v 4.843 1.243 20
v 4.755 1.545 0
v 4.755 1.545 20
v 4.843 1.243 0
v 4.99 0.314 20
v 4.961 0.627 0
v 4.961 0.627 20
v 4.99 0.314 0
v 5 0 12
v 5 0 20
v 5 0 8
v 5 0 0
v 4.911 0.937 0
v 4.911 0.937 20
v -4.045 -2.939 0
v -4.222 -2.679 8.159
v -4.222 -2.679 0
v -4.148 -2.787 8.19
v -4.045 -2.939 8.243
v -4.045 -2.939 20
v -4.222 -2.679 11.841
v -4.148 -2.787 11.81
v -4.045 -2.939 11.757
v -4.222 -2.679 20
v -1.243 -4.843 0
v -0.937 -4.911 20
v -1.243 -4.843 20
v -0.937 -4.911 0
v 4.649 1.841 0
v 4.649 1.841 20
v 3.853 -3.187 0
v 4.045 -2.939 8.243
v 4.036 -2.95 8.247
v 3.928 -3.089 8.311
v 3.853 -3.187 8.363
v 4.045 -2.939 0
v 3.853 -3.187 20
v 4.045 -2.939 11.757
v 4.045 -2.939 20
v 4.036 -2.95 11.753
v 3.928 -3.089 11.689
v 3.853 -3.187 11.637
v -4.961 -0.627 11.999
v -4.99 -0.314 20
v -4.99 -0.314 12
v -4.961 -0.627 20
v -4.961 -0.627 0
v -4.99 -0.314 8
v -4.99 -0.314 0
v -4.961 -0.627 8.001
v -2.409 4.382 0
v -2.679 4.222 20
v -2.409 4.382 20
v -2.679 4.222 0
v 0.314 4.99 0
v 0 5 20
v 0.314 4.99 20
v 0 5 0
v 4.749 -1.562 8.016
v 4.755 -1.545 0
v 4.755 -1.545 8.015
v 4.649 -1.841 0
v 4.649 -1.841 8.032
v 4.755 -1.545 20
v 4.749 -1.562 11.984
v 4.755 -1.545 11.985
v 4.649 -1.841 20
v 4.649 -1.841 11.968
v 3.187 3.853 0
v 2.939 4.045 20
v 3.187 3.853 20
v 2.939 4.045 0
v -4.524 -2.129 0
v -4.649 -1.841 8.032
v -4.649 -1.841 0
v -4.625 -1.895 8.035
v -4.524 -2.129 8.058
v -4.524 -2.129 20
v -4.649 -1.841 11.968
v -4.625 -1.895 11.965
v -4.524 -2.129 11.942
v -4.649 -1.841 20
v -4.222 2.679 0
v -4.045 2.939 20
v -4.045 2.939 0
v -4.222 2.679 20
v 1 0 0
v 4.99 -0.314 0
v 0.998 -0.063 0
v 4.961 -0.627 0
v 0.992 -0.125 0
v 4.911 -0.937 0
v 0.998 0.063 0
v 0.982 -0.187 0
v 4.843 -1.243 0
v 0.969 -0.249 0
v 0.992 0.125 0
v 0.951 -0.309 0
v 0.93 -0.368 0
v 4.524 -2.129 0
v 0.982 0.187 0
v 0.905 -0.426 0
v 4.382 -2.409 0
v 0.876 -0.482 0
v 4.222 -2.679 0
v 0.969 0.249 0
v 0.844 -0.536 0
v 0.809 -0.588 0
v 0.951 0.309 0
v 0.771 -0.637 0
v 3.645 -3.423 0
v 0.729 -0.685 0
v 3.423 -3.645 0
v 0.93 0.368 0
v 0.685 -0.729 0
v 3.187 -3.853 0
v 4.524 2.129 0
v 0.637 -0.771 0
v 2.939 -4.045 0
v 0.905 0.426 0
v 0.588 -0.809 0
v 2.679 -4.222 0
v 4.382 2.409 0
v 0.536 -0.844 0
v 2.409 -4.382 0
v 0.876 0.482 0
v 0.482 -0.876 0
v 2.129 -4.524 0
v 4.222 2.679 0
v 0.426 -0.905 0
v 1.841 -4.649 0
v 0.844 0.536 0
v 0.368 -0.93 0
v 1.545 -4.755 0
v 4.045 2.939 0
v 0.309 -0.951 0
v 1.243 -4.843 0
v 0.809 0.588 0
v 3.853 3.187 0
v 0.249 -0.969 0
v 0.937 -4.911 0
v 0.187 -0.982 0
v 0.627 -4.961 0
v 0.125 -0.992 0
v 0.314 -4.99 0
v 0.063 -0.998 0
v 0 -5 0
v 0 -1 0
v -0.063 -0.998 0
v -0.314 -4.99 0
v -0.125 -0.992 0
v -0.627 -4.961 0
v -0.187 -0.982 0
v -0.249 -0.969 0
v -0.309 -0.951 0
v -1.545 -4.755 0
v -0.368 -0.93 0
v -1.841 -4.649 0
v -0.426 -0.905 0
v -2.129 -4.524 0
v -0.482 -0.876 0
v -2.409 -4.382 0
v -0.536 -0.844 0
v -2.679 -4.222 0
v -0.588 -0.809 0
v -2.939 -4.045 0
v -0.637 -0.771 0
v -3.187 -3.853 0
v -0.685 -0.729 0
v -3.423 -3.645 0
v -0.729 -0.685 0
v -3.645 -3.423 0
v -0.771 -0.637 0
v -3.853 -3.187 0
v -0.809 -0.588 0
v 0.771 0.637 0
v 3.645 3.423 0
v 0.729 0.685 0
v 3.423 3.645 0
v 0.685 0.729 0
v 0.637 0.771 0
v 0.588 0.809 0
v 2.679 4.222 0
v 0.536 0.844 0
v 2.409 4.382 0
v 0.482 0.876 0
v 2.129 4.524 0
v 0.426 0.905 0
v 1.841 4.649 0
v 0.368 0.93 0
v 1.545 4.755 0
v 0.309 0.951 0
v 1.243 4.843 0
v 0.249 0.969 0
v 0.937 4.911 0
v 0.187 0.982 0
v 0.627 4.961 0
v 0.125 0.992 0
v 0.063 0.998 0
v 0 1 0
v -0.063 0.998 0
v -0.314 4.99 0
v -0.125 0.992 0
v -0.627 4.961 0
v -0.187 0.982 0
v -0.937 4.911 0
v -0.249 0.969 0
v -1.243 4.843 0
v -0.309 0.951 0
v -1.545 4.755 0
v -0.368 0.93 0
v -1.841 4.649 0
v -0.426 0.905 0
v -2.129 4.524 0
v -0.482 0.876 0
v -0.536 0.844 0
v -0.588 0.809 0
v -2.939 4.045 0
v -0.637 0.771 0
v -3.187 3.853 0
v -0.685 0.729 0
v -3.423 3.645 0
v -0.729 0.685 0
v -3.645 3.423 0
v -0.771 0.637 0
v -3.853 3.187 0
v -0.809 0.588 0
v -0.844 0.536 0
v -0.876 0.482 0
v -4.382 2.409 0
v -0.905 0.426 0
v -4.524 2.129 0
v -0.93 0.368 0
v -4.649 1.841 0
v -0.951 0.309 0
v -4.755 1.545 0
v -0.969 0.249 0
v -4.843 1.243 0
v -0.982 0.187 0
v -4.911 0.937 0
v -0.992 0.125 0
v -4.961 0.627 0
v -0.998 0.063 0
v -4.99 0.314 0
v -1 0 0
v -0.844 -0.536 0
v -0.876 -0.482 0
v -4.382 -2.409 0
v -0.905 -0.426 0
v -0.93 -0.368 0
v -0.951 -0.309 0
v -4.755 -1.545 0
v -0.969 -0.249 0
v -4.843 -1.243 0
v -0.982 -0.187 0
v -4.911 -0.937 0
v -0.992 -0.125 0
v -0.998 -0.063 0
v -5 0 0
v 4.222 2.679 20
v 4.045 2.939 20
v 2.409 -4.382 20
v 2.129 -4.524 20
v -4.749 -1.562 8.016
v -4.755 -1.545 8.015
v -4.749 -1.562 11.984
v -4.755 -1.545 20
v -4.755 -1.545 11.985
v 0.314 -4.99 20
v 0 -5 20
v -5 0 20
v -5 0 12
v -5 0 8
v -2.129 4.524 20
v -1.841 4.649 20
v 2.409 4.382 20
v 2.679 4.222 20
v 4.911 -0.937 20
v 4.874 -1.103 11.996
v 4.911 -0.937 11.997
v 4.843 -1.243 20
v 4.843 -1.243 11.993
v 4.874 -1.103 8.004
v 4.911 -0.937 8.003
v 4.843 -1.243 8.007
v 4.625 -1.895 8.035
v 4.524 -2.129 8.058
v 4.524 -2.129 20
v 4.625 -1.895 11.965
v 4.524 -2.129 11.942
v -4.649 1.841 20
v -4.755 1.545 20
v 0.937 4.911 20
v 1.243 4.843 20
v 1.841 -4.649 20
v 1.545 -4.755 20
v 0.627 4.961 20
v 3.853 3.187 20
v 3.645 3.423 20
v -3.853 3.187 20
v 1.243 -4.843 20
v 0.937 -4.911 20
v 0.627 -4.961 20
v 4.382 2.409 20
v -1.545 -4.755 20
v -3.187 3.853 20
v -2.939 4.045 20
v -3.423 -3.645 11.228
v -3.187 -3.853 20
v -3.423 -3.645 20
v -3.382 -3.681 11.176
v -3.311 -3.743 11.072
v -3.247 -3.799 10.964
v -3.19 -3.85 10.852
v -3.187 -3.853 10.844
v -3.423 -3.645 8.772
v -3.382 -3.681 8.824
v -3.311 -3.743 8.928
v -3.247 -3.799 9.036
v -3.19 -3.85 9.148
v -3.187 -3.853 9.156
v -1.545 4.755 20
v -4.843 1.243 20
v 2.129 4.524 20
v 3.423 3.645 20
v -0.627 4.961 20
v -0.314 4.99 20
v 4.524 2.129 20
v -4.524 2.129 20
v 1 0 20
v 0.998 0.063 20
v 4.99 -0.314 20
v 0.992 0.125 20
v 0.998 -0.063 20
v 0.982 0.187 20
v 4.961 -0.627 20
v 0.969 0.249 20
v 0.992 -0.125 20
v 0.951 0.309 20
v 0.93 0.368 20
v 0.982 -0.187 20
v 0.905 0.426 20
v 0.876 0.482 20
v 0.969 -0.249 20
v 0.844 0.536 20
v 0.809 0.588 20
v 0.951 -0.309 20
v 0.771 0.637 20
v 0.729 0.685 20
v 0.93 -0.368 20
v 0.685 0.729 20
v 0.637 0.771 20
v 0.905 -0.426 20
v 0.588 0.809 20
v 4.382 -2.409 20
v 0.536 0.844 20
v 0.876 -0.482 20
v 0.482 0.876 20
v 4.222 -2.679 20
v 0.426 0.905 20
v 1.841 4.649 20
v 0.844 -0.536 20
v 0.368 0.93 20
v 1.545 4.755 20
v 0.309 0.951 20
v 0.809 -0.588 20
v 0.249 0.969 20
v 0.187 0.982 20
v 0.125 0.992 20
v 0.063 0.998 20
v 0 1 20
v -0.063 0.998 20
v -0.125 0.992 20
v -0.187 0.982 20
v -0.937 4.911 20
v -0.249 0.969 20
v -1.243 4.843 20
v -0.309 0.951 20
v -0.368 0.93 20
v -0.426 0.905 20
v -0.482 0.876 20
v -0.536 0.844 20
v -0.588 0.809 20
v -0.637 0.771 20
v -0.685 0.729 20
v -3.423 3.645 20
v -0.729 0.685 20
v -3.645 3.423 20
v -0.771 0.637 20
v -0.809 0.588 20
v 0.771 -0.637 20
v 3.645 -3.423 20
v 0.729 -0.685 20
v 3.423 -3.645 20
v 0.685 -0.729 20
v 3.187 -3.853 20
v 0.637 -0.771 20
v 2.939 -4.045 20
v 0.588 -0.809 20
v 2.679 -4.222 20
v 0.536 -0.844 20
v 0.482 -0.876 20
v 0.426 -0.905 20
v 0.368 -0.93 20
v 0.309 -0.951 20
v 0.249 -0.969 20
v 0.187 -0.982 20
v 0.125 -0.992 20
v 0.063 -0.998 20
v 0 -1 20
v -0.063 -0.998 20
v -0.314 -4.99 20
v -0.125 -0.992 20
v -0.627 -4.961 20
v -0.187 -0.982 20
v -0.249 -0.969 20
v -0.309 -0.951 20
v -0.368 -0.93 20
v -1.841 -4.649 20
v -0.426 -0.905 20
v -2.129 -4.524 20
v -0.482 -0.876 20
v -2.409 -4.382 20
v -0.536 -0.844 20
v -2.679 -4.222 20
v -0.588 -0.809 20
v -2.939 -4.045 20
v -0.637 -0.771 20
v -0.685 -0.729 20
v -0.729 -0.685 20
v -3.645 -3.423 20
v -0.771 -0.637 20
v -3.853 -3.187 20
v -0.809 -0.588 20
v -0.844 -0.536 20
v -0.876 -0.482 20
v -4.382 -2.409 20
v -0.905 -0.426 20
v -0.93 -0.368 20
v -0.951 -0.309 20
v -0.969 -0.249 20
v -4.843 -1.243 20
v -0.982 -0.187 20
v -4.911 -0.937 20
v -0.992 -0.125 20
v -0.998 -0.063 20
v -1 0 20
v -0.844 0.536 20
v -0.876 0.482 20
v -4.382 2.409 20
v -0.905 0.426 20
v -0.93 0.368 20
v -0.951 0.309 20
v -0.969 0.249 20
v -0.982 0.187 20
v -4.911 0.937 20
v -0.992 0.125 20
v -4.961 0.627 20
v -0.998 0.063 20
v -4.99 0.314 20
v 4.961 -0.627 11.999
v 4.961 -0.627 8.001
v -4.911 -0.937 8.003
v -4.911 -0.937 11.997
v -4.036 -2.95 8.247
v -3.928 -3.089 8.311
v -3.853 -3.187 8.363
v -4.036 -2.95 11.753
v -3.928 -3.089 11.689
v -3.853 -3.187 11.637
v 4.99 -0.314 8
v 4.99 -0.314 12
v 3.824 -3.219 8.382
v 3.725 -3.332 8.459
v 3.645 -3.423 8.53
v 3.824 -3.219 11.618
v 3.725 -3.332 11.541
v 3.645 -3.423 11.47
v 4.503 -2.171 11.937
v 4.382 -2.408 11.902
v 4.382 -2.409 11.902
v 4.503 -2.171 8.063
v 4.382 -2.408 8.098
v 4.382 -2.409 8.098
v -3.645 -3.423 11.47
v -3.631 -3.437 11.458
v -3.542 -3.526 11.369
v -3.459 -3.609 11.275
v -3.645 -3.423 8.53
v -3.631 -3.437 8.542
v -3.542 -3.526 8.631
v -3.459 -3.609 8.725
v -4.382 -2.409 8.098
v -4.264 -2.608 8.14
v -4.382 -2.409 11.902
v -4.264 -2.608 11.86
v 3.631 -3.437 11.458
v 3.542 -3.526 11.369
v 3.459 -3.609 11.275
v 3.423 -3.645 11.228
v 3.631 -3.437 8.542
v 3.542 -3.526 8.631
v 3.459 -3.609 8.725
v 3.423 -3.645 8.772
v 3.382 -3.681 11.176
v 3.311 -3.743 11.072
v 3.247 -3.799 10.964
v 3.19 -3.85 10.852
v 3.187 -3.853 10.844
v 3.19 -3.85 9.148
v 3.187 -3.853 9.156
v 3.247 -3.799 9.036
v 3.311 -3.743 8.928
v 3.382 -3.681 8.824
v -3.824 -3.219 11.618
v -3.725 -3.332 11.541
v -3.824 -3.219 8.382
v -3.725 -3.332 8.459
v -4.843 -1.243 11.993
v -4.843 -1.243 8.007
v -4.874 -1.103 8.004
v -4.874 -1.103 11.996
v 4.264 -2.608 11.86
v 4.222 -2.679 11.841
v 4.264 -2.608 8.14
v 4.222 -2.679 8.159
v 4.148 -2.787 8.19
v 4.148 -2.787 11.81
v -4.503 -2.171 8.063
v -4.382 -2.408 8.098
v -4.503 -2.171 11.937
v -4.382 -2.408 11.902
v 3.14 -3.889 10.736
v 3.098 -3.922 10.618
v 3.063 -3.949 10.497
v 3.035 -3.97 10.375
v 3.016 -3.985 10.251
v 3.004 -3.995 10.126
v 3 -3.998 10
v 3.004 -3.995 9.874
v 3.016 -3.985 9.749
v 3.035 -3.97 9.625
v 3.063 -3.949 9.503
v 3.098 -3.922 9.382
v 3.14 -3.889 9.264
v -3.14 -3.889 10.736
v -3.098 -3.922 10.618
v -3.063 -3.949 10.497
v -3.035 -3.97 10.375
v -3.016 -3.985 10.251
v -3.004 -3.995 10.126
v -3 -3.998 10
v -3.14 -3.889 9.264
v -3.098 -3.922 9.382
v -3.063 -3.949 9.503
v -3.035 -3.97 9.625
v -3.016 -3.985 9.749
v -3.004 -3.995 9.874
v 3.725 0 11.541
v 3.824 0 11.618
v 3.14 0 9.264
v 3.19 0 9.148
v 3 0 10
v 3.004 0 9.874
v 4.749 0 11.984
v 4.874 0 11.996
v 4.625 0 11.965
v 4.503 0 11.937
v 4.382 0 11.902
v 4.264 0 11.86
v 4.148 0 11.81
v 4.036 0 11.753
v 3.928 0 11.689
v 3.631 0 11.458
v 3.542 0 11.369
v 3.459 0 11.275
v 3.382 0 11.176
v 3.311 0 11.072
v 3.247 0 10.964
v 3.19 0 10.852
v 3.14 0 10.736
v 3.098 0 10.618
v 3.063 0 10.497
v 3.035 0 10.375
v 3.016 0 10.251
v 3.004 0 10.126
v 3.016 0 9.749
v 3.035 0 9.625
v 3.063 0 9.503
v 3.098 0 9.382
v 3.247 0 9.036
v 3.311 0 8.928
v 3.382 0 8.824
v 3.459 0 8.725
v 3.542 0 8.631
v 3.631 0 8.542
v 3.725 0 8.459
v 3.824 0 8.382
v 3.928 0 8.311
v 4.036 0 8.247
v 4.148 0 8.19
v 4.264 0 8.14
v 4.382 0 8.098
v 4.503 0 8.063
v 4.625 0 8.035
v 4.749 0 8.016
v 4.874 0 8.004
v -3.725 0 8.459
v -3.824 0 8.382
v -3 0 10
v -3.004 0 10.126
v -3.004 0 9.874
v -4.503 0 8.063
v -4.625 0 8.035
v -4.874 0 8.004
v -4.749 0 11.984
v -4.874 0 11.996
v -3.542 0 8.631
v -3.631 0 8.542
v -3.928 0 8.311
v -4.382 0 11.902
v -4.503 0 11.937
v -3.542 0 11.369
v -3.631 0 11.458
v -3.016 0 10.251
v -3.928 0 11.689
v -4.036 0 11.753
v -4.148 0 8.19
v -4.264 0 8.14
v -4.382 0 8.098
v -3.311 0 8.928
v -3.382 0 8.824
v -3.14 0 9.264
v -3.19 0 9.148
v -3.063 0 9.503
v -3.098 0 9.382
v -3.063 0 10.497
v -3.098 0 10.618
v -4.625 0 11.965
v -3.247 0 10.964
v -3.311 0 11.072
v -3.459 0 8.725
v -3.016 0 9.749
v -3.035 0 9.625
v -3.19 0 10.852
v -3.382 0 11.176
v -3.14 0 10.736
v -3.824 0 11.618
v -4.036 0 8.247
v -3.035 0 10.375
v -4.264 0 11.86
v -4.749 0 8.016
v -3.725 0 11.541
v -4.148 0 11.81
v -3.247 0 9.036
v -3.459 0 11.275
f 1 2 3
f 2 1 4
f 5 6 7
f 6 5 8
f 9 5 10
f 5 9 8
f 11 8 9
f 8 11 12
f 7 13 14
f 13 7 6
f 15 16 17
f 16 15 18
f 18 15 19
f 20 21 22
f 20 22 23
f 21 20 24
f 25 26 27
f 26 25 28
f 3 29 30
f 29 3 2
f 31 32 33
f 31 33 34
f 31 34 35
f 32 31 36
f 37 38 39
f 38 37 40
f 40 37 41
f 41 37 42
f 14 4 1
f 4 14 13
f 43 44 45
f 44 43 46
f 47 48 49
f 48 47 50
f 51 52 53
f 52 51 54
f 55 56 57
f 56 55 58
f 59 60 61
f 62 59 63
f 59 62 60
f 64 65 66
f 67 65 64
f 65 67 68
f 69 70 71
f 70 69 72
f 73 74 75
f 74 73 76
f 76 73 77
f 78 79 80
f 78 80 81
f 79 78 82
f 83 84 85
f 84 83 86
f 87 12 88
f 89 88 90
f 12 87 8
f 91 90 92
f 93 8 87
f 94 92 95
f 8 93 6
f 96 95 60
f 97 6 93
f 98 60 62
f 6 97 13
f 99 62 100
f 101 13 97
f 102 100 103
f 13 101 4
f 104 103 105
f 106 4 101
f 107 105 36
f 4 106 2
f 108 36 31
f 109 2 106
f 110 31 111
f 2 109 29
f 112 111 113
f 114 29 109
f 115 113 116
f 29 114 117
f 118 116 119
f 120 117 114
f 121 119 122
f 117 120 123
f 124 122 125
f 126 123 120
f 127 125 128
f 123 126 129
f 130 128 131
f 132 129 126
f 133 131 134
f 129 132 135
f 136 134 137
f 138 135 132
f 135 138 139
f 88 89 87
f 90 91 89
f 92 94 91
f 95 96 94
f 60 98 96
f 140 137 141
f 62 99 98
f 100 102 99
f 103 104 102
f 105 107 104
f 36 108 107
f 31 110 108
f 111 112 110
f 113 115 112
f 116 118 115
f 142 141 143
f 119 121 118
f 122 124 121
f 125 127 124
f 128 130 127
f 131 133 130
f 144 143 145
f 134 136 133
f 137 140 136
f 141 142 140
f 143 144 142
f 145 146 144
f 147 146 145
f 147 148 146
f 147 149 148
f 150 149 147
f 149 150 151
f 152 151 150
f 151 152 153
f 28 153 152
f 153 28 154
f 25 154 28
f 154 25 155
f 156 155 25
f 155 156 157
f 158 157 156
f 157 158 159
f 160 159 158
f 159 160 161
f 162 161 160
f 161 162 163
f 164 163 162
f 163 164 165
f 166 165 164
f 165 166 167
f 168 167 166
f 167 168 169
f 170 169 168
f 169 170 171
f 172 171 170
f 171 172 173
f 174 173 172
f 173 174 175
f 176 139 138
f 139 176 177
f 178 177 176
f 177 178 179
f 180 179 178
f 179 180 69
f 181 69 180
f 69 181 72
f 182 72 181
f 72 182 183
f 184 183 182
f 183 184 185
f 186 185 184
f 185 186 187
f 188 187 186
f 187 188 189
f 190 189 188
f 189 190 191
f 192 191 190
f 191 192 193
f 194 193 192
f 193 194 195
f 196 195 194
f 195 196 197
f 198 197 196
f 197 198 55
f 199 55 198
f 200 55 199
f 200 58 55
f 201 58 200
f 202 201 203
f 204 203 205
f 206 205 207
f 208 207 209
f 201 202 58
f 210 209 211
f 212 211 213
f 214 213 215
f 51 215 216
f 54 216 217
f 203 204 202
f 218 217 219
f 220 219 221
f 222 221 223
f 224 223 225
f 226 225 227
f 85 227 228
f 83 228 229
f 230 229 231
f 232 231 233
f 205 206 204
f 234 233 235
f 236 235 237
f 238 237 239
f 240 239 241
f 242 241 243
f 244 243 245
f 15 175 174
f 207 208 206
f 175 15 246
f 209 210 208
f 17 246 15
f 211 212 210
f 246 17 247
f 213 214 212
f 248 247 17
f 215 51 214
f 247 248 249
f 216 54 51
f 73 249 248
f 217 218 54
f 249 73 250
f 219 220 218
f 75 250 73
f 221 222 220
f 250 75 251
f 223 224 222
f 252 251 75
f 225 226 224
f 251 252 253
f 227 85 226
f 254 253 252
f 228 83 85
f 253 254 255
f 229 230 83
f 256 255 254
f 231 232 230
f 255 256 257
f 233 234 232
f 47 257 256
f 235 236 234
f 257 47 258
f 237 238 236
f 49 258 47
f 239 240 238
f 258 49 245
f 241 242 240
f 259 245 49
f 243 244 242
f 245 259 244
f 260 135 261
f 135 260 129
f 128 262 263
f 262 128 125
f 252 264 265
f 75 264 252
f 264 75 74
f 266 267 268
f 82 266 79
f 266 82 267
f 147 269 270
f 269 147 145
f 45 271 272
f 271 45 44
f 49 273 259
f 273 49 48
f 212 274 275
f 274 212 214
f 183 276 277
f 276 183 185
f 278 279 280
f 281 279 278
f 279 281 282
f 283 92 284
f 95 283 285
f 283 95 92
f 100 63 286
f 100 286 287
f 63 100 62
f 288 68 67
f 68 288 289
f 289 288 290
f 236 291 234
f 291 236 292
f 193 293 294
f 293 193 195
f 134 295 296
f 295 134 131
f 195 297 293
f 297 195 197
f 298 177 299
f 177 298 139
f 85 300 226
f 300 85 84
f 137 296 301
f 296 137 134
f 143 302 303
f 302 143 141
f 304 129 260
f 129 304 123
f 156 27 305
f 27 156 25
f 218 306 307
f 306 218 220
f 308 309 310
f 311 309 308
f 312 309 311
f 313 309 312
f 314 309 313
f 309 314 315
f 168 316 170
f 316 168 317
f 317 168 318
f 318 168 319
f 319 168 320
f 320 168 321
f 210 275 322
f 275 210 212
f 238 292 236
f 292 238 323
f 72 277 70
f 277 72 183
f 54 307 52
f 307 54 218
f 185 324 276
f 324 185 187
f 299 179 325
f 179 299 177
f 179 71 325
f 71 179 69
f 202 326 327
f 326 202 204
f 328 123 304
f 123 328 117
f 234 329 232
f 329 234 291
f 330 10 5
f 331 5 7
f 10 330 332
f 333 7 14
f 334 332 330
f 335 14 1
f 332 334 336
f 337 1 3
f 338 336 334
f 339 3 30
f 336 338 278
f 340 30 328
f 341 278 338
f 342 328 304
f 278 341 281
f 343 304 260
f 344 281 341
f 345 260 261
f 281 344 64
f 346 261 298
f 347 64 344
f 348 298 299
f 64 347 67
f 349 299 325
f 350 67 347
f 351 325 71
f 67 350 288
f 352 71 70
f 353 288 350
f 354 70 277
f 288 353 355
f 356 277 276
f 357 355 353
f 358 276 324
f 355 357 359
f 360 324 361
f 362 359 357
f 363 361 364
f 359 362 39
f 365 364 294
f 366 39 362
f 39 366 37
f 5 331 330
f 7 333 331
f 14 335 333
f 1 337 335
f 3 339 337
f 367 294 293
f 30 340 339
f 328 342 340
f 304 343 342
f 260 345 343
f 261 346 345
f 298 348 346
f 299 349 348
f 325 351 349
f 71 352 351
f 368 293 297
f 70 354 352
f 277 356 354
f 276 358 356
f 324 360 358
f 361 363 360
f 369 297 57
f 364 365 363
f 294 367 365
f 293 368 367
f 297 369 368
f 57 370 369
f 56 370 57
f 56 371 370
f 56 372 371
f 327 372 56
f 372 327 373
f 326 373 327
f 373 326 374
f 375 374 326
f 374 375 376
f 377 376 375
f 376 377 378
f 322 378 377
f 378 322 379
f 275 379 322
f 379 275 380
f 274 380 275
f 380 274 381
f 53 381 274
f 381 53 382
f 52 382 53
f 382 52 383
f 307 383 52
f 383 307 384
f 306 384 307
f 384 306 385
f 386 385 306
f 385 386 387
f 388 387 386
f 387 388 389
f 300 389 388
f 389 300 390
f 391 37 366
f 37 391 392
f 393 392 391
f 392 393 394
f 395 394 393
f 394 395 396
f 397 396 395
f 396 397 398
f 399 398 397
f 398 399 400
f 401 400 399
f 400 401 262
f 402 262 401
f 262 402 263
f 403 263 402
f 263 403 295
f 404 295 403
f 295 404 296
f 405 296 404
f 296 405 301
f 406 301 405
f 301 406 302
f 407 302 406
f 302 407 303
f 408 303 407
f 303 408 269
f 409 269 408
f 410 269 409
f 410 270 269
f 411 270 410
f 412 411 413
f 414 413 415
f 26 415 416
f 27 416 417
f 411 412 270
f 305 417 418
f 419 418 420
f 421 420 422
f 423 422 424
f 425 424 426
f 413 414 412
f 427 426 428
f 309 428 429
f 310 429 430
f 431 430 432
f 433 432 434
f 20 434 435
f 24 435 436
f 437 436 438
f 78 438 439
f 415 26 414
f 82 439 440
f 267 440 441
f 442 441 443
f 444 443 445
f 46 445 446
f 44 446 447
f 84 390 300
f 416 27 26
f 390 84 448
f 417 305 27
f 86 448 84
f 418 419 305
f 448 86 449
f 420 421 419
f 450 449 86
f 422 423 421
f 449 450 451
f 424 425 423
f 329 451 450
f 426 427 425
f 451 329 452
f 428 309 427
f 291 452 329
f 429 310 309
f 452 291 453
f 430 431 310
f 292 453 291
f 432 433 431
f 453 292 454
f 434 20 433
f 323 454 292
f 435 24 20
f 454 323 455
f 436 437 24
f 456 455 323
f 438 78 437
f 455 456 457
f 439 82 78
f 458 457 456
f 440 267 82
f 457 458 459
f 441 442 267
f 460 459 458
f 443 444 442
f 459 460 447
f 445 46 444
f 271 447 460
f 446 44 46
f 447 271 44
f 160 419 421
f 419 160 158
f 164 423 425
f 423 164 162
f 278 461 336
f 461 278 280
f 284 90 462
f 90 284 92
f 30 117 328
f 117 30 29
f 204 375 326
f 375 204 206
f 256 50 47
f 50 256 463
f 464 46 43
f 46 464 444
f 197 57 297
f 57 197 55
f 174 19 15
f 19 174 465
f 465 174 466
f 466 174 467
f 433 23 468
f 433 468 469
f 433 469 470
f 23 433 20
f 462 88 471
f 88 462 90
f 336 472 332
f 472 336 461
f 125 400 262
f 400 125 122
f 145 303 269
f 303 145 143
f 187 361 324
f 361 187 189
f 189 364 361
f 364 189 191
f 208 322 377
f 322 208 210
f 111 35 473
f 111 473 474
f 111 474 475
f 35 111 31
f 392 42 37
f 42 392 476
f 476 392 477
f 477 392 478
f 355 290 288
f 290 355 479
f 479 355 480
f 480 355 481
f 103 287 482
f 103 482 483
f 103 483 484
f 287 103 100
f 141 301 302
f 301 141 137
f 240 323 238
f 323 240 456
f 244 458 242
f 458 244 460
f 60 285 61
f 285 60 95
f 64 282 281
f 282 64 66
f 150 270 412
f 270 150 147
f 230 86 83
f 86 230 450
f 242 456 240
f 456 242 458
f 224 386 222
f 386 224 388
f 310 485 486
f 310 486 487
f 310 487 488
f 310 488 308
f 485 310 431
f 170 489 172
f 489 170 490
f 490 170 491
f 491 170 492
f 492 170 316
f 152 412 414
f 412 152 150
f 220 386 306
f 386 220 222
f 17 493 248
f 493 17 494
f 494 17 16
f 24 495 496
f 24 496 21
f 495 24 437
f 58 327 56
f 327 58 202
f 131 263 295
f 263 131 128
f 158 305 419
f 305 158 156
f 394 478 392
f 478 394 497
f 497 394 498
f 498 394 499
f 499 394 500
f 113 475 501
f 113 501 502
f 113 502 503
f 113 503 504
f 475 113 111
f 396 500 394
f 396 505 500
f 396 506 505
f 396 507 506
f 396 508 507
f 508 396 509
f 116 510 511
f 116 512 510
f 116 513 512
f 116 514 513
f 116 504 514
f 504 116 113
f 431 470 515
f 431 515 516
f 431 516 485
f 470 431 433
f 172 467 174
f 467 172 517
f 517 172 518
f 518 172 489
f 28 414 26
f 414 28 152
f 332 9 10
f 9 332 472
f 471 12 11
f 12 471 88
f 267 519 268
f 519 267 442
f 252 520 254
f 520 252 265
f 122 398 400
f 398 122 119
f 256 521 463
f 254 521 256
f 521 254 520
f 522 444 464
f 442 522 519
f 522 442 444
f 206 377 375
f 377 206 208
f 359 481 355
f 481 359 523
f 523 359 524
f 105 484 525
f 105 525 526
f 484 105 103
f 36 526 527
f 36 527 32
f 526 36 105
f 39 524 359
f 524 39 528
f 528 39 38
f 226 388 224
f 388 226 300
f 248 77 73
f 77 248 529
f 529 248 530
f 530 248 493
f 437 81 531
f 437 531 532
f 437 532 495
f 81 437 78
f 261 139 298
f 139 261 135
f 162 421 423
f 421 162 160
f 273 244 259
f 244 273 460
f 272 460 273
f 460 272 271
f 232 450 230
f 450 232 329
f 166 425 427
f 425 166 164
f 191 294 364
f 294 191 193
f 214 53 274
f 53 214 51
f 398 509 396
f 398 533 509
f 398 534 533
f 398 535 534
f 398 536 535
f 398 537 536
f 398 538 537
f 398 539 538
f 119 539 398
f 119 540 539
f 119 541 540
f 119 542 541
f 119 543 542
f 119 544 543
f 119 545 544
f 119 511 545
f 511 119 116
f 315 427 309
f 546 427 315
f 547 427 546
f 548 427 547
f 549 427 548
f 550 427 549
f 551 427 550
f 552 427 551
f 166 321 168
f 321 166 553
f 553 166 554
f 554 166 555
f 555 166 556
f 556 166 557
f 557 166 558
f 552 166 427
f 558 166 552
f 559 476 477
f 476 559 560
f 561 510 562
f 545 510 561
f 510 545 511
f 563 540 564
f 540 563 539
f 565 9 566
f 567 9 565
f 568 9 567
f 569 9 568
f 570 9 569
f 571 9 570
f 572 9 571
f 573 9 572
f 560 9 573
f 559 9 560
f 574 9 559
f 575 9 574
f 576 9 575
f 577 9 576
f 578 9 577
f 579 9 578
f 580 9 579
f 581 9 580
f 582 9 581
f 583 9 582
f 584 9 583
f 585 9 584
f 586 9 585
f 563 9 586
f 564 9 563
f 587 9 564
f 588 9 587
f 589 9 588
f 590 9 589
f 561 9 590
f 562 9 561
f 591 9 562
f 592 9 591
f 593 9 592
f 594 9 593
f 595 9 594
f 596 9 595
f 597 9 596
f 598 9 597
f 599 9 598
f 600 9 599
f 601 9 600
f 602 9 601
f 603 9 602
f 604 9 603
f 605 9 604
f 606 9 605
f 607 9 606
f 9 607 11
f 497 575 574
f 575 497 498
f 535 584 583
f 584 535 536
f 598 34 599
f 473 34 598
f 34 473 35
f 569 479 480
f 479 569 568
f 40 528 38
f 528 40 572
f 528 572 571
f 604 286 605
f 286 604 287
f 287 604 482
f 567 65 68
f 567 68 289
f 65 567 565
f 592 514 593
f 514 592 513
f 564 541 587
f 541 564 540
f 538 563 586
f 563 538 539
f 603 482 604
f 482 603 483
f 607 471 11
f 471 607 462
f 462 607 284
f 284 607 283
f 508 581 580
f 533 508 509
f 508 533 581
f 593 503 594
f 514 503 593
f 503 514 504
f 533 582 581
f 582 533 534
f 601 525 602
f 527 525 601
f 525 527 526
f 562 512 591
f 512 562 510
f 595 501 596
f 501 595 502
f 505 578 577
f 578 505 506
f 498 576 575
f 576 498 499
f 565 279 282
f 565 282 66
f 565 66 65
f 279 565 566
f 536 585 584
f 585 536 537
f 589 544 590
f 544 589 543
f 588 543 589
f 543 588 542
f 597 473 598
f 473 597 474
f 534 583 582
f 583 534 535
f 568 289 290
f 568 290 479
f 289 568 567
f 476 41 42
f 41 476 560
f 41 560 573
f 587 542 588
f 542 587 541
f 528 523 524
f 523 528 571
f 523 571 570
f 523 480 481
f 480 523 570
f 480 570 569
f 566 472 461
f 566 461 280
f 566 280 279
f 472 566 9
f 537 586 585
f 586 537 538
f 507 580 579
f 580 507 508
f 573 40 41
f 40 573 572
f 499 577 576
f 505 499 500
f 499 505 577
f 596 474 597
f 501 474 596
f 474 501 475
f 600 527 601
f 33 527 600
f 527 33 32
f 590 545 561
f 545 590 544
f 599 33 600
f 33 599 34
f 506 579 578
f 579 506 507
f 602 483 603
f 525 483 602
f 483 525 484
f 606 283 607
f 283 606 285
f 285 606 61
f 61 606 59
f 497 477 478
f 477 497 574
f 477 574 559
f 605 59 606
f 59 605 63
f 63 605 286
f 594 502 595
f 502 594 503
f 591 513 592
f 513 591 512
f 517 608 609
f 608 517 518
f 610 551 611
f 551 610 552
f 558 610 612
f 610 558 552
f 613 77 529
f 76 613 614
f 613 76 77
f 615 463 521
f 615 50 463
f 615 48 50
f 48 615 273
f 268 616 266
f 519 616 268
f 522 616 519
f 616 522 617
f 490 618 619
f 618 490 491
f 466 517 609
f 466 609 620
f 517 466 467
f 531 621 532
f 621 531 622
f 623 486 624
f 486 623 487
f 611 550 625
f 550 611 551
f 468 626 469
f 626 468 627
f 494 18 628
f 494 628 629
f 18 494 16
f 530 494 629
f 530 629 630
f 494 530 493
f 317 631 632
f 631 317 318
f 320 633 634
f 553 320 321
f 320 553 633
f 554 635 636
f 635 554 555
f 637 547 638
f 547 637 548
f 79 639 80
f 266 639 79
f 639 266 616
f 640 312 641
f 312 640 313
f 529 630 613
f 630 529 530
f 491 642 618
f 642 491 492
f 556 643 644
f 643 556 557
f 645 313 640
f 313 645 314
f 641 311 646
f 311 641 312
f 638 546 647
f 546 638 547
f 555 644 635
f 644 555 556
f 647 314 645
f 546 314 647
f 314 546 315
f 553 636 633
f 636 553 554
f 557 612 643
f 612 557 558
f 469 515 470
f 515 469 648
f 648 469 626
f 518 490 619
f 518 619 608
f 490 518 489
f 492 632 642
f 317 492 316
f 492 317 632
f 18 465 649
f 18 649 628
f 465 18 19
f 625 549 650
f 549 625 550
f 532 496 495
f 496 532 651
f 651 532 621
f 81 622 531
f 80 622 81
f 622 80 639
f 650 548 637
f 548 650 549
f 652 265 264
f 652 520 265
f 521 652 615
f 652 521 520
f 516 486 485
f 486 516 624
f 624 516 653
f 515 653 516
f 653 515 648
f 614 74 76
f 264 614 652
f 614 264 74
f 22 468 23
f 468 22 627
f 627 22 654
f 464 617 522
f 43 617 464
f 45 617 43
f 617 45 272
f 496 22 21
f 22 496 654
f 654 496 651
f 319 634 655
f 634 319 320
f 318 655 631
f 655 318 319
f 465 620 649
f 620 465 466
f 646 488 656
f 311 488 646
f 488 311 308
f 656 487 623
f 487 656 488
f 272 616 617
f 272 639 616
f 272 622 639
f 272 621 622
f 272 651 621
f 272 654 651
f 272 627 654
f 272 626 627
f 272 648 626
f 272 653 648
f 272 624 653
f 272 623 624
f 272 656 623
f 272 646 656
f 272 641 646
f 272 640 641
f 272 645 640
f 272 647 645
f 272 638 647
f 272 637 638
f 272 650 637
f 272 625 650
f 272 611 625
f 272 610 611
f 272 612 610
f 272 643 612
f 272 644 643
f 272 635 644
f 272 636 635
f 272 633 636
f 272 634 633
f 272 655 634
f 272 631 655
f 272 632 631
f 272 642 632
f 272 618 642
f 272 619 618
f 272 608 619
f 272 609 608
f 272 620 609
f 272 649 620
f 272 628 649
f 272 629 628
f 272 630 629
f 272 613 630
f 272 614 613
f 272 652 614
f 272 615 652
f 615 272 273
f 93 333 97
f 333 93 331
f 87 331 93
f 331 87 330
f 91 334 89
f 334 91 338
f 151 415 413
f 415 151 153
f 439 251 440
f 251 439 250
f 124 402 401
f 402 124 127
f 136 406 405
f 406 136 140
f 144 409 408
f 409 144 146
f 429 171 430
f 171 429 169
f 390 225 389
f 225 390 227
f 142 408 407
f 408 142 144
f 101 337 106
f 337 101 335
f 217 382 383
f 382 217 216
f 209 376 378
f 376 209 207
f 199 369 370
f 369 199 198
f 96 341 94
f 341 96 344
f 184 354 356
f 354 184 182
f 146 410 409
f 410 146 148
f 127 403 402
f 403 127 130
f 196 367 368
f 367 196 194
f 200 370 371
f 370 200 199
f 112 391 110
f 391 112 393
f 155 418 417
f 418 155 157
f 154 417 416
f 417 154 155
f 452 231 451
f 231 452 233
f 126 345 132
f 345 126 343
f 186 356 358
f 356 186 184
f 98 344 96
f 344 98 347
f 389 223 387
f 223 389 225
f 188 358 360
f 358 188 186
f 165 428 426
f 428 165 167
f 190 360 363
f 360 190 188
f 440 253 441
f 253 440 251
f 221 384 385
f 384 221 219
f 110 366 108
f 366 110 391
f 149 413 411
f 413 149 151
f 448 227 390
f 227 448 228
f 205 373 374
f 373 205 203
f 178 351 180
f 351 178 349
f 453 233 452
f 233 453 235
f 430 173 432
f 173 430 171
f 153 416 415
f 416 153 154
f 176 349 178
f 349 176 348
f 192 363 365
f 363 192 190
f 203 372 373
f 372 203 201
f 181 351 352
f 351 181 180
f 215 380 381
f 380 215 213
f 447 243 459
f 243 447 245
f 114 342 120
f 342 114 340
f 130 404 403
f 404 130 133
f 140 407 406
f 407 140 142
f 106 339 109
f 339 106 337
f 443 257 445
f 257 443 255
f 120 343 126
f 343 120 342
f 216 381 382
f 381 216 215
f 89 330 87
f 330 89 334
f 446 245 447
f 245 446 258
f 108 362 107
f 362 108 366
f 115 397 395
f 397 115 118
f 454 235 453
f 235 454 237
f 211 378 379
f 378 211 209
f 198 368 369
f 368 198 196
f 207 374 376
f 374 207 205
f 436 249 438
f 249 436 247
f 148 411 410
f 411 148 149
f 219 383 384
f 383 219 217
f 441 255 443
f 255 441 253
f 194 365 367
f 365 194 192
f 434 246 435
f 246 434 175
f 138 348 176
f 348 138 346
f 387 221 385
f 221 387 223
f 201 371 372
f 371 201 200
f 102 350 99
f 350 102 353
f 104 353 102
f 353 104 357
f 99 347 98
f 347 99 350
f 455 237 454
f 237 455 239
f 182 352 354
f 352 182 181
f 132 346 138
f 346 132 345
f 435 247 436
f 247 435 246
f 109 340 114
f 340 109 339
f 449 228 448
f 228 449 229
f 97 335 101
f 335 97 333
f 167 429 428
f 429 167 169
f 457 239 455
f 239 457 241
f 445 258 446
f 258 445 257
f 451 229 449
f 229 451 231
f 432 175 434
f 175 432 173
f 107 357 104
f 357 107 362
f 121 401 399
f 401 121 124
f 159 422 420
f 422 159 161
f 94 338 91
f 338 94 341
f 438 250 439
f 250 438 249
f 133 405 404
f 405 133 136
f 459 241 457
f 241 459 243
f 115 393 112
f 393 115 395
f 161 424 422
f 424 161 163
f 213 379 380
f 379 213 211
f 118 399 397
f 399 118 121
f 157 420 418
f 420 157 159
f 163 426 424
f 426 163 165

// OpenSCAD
module main_part() {
    difference() {
        // Main cylinder
        cylinder(h = 20, d = 10, $fn=100);

        // Holes on the sides
        translate([5, 0, 10])
            rotate([90, 0, 0])
            cylinder(h = 12, d = 4, $fn=100);

        translate([-5, 0, 10])
            rotate([90, 0, 0])
            cylinder(h = 12, d = 4, $fn=100);
        
        // Central hole
        translate([0, 0, -1])
            cylinder(h = 22, d = 2, $fn=100);
    }
}

main_part();
